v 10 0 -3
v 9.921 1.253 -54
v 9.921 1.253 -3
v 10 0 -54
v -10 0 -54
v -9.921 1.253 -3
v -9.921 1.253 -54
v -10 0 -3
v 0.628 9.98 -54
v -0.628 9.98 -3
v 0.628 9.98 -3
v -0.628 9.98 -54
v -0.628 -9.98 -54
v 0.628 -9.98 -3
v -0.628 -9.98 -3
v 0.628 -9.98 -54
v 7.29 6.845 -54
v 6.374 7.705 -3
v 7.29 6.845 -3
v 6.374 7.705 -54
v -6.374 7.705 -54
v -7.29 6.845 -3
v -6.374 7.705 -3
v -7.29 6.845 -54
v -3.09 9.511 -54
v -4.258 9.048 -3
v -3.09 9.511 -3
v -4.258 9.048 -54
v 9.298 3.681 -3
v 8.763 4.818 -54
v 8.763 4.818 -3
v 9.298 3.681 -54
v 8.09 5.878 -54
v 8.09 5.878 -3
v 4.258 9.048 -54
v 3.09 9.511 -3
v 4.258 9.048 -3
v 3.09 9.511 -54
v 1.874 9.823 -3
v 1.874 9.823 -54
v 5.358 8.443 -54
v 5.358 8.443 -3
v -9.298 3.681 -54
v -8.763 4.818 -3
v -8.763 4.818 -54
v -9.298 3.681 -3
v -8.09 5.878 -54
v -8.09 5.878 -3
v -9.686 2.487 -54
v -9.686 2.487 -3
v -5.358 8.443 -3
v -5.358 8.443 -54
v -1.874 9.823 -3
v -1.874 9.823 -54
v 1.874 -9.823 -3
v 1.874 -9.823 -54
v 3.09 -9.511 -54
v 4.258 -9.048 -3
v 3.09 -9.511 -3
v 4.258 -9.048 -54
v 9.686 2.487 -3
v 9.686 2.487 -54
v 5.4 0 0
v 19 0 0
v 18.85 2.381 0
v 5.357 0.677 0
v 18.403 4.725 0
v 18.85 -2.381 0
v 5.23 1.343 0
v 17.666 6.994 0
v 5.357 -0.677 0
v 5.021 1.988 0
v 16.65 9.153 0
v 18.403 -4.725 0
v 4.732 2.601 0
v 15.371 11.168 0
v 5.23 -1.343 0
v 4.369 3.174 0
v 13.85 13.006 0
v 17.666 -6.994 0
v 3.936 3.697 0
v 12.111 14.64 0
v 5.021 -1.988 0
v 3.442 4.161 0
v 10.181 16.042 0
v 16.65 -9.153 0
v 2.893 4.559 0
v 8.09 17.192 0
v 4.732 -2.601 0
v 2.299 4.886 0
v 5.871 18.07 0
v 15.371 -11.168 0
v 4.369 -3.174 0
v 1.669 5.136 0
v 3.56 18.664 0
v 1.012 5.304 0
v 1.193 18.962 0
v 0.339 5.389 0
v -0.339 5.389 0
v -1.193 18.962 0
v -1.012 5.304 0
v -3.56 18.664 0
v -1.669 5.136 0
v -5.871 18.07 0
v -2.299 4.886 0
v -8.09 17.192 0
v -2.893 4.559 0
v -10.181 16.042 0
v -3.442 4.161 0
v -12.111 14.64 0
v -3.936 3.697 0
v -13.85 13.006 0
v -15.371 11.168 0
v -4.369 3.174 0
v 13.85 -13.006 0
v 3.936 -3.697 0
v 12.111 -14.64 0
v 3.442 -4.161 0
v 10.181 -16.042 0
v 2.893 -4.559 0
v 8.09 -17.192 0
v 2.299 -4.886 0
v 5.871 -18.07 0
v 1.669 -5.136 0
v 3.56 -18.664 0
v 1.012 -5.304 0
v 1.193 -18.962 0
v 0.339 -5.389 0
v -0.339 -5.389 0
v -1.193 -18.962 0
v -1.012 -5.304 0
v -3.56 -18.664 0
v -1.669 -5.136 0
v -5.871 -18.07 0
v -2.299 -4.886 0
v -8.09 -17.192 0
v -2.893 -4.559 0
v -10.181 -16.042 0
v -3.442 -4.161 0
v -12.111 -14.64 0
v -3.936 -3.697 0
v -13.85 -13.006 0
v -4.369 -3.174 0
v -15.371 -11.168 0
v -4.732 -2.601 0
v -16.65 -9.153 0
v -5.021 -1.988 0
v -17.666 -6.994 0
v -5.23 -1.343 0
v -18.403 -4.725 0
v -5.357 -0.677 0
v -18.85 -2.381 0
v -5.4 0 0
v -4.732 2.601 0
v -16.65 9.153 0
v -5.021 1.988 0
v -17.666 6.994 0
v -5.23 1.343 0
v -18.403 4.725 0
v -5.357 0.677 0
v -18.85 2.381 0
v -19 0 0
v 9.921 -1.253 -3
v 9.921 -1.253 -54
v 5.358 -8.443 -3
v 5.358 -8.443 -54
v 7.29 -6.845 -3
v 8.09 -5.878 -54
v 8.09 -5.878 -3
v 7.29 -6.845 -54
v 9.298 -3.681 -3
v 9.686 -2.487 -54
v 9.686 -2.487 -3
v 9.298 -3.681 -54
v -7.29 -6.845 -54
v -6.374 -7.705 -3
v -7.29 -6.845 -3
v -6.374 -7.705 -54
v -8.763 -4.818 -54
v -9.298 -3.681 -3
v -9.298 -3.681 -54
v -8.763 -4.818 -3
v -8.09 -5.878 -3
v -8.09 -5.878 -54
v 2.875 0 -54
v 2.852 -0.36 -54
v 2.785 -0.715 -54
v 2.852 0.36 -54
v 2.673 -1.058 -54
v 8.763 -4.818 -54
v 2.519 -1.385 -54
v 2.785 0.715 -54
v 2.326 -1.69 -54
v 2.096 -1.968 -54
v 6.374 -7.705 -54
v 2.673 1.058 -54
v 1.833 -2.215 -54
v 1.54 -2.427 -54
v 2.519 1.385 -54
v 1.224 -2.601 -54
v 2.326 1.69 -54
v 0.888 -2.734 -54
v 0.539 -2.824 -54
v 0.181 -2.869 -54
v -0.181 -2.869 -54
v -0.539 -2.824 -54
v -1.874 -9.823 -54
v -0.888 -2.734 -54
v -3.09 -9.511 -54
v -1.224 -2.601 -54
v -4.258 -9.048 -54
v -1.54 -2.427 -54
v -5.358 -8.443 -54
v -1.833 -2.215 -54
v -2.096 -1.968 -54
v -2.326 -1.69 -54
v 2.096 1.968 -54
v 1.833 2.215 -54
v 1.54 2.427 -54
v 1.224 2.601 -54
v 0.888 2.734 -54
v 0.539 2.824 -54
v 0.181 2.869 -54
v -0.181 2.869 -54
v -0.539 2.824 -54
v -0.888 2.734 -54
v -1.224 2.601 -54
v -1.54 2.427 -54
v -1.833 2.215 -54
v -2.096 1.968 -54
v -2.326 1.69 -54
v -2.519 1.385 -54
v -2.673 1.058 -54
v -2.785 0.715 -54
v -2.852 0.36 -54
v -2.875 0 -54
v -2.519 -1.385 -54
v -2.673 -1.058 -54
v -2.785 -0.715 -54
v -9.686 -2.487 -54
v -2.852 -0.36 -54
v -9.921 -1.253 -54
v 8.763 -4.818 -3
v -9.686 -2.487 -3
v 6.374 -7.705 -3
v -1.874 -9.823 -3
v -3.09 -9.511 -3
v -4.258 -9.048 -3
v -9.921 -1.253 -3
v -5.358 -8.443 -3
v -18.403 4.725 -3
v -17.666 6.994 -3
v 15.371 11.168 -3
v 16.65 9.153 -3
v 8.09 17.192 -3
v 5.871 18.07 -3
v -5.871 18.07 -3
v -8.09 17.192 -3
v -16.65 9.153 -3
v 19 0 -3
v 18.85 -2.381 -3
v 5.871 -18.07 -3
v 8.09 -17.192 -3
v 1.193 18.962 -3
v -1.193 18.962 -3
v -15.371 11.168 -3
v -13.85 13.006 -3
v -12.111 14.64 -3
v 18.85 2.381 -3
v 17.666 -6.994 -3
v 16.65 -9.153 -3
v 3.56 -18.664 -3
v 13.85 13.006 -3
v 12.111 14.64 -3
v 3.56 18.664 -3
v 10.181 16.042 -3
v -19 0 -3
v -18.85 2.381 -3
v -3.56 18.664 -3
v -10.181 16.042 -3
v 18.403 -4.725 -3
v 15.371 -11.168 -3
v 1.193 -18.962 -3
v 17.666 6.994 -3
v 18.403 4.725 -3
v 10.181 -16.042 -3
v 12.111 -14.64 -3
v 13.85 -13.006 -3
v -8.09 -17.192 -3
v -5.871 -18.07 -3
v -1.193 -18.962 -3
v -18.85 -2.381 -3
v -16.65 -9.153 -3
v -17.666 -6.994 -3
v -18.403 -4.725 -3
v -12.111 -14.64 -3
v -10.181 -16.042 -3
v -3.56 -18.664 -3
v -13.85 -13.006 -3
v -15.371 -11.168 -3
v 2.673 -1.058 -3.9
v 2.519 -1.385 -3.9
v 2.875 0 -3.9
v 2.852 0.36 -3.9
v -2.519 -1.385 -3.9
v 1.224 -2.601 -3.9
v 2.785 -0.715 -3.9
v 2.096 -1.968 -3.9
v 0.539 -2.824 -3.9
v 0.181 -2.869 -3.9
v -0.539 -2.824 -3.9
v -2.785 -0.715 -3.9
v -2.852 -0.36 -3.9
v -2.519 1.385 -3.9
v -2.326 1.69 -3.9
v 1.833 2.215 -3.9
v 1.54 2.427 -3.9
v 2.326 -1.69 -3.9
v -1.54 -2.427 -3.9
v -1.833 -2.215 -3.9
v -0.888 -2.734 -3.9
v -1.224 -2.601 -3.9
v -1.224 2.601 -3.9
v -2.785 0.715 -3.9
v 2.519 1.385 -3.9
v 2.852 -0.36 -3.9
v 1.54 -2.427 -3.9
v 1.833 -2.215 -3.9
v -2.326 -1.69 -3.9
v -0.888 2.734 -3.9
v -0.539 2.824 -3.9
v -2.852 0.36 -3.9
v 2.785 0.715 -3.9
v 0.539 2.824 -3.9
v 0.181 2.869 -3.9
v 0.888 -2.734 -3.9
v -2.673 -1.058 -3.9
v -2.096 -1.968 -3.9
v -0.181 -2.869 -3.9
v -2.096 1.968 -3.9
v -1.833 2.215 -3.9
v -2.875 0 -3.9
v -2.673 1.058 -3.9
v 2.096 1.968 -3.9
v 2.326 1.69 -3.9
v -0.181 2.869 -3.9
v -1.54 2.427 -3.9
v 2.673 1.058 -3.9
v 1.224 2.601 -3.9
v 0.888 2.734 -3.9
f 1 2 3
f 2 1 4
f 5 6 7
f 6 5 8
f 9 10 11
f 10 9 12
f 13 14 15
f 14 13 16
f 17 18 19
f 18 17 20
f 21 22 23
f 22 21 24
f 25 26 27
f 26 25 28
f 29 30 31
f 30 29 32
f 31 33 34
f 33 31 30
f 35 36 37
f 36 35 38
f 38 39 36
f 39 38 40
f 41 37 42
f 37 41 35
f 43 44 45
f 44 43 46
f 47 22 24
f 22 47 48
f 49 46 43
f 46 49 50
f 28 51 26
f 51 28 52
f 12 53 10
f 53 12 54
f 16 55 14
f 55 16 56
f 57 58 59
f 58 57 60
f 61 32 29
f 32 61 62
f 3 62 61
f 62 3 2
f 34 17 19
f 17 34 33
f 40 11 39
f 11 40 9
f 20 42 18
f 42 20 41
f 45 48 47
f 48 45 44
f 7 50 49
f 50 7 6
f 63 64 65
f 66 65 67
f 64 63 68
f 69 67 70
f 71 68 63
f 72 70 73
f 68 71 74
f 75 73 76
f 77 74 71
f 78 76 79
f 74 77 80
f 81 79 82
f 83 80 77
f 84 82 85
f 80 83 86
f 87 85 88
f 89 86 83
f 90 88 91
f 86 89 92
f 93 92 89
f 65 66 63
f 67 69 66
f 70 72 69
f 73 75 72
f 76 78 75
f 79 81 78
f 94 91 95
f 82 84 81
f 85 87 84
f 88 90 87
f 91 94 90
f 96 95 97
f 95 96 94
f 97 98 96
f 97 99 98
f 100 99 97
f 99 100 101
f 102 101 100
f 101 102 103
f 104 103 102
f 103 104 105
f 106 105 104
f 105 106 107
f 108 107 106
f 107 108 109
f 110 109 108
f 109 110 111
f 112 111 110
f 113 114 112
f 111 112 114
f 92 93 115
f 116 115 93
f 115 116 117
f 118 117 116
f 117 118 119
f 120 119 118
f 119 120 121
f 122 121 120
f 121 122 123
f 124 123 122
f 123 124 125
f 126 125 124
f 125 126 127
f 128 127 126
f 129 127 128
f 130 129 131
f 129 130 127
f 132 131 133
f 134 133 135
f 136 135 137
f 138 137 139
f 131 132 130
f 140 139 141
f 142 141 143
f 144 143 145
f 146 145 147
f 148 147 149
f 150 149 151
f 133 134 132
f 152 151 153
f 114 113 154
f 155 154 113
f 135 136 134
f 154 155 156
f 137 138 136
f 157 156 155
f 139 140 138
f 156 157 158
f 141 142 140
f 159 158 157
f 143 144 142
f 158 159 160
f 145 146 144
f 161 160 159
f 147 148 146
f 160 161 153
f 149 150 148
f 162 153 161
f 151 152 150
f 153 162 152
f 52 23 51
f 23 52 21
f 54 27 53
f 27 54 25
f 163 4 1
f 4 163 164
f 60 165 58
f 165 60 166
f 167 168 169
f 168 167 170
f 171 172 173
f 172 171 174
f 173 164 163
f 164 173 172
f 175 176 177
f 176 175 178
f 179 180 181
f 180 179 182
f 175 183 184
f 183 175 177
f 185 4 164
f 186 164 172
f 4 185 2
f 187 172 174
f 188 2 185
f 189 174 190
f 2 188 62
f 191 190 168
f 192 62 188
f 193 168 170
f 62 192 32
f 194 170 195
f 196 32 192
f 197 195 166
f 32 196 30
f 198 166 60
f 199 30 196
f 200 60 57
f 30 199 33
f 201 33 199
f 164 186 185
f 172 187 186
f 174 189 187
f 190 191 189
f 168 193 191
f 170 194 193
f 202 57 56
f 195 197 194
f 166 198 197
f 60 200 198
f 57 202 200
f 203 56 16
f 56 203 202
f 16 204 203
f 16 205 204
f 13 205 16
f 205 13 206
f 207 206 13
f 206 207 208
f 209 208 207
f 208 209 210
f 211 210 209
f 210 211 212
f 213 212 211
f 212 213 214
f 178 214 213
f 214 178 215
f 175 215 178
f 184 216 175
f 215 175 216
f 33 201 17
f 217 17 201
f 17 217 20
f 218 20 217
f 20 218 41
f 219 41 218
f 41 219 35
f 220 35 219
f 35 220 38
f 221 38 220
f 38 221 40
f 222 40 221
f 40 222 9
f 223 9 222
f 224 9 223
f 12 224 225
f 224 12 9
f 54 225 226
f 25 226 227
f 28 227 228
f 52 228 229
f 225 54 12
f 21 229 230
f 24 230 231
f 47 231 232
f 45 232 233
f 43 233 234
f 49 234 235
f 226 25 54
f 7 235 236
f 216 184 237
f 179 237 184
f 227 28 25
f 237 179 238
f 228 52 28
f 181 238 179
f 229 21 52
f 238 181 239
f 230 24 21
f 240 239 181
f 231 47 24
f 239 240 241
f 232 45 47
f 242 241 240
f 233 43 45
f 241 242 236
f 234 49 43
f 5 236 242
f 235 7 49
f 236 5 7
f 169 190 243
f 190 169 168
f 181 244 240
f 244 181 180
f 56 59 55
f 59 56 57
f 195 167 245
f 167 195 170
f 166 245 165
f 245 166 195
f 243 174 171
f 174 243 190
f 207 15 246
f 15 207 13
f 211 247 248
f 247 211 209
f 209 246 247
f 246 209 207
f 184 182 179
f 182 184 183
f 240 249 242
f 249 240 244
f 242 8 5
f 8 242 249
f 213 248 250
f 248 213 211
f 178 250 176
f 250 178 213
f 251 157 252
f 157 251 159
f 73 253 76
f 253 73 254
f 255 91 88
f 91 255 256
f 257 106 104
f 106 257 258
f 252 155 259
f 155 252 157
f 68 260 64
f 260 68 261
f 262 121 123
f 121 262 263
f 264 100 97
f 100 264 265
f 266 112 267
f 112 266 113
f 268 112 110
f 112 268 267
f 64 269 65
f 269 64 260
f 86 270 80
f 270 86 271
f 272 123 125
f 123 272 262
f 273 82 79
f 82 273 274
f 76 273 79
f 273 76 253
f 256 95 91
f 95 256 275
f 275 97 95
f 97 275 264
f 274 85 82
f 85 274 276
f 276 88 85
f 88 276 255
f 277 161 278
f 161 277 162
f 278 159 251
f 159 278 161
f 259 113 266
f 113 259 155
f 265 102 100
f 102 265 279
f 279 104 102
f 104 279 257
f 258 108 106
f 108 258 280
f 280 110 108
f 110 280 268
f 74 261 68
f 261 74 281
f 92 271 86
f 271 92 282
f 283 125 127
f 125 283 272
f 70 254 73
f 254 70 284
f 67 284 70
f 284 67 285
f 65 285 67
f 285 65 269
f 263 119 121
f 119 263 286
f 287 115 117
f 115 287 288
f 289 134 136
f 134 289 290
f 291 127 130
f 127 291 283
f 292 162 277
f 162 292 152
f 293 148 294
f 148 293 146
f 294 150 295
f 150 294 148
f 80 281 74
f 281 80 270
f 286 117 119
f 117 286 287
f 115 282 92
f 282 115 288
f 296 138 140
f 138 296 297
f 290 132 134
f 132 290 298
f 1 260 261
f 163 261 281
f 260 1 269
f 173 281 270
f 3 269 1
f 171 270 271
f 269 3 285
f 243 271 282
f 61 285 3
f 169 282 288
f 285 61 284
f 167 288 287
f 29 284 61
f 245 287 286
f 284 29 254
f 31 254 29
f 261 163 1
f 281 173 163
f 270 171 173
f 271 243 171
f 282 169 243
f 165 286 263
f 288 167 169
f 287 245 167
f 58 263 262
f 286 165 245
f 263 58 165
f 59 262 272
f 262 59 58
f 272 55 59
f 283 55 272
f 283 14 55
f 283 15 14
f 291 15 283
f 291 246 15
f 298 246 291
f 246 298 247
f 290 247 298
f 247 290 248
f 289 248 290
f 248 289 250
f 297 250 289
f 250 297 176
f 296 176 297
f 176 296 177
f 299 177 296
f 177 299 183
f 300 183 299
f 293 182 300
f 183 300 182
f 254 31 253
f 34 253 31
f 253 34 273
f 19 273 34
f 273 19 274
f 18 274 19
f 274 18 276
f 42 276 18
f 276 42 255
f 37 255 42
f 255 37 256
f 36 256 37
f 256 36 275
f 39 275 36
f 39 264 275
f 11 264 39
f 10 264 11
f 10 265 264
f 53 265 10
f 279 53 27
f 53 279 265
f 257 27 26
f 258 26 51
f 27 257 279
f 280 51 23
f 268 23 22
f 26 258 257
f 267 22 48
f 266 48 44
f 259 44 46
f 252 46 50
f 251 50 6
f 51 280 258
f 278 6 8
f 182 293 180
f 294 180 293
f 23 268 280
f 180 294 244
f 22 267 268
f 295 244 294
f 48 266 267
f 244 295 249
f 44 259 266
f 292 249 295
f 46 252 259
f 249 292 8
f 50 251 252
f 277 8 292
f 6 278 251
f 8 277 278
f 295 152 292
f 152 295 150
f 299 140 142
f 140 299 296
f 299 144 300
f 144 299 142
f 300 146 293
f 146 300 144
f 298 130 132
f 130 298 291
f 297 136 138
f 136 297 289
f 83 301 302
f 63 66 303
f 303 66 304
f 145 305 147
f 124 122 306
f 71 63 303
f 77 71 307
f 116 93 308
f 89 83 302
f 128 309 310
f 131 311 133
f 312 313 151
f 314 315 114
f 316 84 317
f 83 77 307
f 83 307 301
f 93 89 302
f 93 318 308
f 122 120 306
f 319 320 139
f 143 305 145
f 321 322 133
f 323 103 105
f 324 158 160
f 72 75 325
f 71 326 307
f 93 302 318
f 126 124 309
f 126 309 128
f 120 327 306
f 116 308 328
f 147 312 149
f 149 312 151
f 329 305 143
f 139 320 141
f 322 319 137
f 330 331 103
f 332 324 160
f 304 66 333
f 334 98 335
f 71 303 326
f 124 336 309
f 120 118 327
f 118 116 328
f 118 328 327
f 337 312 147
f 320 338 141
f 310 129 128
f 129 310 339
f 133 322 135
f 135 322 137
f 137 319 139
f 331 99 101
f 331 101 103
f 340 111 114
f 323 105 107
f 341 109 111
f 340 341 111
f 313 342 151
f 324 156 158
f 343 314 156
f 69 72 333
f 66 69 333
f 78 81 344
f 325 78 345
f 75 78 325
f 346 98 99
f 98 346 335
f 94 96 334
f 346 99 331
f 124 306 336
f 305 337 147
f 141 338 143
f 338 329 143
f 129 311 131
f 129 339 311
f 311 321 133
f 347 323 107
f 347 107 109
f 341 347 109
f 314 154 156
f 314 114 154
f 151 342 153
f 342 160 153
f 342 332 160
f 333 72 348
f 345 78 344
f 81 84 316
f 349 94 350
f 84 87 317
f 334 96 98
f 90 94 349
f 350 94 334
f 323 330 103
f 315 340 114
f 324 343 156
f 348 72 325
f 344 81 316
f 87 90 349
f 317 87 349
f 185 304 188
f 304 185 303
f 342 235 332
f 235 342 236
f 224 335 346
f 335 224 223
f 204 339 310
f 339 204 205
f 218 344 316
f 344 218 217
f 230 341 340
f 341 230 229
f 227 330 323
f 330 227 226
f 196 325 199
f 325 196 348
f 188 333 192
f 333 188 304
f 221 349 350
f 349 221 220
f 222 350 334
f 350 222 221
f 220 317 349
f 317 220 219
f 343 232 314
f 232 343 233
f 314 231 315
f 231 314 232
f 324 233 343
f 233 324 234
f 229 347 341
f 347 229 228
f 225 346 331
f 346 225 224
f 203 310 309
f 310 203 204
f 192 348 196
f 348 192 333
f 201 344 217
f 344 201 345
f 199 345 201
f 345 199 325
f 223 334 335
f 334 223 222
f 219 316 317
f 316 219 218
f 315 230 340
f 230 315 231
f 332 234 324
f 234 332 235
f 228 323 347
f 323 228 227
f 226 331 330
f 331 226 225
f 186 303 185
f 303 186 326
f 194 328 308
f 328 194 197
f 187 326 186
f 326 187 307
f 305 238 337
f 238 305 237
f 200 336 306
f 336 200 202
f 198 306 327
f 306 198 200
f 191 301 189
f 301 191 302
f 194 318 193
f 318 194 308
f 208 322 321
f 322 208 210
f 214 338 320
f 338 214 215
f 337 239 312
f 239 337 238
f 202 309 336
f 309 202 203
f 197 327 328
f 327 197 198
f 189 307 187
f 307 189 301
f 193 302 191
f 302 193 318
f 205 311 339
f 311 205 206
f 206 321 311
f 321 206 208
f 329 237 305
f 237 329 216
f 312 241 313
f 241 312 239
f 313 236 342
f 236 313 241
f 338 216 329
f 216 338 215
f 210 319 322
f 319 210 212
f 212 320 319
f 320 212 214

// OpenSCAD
$fn = 50;


difference() {
	union() {
		translate(v = [0, 0, -54.0000000000]) {
			cylinder(h = 54, r = 10.0000000000);
		}
		translate(v = [0, 0, -3.0000000000]) {
			cylinder(h = 3, r = 19.0000000000);
		}
	}
	union() {
		translate(v = [0, 0, 0]) {
			rotate(a = [0, 0, 0]) {
				difference() {
					union() {
						#translate(v = [0, 0, -54.0000000000]) {
							cylinder(h = 54, r = 2.6000000000);
						}
						#translate(v = [0, 0, -3.9000000000]) {
							cylinder(h = 3.9000000000, r1 = 2.8750000000, r2 = 5.4000000000);
						}
						#translate(v = [0, 0, -54.0000000000]) {
							cylinder(h = 54, r = 2.8750000000);
						}
						#translate(v = [0, 0, -54.0000000000]) {
							cylinder(h = 54, r = 2.6000000000);
						}
					}
					union();
				}
			}
		}
	}
}
